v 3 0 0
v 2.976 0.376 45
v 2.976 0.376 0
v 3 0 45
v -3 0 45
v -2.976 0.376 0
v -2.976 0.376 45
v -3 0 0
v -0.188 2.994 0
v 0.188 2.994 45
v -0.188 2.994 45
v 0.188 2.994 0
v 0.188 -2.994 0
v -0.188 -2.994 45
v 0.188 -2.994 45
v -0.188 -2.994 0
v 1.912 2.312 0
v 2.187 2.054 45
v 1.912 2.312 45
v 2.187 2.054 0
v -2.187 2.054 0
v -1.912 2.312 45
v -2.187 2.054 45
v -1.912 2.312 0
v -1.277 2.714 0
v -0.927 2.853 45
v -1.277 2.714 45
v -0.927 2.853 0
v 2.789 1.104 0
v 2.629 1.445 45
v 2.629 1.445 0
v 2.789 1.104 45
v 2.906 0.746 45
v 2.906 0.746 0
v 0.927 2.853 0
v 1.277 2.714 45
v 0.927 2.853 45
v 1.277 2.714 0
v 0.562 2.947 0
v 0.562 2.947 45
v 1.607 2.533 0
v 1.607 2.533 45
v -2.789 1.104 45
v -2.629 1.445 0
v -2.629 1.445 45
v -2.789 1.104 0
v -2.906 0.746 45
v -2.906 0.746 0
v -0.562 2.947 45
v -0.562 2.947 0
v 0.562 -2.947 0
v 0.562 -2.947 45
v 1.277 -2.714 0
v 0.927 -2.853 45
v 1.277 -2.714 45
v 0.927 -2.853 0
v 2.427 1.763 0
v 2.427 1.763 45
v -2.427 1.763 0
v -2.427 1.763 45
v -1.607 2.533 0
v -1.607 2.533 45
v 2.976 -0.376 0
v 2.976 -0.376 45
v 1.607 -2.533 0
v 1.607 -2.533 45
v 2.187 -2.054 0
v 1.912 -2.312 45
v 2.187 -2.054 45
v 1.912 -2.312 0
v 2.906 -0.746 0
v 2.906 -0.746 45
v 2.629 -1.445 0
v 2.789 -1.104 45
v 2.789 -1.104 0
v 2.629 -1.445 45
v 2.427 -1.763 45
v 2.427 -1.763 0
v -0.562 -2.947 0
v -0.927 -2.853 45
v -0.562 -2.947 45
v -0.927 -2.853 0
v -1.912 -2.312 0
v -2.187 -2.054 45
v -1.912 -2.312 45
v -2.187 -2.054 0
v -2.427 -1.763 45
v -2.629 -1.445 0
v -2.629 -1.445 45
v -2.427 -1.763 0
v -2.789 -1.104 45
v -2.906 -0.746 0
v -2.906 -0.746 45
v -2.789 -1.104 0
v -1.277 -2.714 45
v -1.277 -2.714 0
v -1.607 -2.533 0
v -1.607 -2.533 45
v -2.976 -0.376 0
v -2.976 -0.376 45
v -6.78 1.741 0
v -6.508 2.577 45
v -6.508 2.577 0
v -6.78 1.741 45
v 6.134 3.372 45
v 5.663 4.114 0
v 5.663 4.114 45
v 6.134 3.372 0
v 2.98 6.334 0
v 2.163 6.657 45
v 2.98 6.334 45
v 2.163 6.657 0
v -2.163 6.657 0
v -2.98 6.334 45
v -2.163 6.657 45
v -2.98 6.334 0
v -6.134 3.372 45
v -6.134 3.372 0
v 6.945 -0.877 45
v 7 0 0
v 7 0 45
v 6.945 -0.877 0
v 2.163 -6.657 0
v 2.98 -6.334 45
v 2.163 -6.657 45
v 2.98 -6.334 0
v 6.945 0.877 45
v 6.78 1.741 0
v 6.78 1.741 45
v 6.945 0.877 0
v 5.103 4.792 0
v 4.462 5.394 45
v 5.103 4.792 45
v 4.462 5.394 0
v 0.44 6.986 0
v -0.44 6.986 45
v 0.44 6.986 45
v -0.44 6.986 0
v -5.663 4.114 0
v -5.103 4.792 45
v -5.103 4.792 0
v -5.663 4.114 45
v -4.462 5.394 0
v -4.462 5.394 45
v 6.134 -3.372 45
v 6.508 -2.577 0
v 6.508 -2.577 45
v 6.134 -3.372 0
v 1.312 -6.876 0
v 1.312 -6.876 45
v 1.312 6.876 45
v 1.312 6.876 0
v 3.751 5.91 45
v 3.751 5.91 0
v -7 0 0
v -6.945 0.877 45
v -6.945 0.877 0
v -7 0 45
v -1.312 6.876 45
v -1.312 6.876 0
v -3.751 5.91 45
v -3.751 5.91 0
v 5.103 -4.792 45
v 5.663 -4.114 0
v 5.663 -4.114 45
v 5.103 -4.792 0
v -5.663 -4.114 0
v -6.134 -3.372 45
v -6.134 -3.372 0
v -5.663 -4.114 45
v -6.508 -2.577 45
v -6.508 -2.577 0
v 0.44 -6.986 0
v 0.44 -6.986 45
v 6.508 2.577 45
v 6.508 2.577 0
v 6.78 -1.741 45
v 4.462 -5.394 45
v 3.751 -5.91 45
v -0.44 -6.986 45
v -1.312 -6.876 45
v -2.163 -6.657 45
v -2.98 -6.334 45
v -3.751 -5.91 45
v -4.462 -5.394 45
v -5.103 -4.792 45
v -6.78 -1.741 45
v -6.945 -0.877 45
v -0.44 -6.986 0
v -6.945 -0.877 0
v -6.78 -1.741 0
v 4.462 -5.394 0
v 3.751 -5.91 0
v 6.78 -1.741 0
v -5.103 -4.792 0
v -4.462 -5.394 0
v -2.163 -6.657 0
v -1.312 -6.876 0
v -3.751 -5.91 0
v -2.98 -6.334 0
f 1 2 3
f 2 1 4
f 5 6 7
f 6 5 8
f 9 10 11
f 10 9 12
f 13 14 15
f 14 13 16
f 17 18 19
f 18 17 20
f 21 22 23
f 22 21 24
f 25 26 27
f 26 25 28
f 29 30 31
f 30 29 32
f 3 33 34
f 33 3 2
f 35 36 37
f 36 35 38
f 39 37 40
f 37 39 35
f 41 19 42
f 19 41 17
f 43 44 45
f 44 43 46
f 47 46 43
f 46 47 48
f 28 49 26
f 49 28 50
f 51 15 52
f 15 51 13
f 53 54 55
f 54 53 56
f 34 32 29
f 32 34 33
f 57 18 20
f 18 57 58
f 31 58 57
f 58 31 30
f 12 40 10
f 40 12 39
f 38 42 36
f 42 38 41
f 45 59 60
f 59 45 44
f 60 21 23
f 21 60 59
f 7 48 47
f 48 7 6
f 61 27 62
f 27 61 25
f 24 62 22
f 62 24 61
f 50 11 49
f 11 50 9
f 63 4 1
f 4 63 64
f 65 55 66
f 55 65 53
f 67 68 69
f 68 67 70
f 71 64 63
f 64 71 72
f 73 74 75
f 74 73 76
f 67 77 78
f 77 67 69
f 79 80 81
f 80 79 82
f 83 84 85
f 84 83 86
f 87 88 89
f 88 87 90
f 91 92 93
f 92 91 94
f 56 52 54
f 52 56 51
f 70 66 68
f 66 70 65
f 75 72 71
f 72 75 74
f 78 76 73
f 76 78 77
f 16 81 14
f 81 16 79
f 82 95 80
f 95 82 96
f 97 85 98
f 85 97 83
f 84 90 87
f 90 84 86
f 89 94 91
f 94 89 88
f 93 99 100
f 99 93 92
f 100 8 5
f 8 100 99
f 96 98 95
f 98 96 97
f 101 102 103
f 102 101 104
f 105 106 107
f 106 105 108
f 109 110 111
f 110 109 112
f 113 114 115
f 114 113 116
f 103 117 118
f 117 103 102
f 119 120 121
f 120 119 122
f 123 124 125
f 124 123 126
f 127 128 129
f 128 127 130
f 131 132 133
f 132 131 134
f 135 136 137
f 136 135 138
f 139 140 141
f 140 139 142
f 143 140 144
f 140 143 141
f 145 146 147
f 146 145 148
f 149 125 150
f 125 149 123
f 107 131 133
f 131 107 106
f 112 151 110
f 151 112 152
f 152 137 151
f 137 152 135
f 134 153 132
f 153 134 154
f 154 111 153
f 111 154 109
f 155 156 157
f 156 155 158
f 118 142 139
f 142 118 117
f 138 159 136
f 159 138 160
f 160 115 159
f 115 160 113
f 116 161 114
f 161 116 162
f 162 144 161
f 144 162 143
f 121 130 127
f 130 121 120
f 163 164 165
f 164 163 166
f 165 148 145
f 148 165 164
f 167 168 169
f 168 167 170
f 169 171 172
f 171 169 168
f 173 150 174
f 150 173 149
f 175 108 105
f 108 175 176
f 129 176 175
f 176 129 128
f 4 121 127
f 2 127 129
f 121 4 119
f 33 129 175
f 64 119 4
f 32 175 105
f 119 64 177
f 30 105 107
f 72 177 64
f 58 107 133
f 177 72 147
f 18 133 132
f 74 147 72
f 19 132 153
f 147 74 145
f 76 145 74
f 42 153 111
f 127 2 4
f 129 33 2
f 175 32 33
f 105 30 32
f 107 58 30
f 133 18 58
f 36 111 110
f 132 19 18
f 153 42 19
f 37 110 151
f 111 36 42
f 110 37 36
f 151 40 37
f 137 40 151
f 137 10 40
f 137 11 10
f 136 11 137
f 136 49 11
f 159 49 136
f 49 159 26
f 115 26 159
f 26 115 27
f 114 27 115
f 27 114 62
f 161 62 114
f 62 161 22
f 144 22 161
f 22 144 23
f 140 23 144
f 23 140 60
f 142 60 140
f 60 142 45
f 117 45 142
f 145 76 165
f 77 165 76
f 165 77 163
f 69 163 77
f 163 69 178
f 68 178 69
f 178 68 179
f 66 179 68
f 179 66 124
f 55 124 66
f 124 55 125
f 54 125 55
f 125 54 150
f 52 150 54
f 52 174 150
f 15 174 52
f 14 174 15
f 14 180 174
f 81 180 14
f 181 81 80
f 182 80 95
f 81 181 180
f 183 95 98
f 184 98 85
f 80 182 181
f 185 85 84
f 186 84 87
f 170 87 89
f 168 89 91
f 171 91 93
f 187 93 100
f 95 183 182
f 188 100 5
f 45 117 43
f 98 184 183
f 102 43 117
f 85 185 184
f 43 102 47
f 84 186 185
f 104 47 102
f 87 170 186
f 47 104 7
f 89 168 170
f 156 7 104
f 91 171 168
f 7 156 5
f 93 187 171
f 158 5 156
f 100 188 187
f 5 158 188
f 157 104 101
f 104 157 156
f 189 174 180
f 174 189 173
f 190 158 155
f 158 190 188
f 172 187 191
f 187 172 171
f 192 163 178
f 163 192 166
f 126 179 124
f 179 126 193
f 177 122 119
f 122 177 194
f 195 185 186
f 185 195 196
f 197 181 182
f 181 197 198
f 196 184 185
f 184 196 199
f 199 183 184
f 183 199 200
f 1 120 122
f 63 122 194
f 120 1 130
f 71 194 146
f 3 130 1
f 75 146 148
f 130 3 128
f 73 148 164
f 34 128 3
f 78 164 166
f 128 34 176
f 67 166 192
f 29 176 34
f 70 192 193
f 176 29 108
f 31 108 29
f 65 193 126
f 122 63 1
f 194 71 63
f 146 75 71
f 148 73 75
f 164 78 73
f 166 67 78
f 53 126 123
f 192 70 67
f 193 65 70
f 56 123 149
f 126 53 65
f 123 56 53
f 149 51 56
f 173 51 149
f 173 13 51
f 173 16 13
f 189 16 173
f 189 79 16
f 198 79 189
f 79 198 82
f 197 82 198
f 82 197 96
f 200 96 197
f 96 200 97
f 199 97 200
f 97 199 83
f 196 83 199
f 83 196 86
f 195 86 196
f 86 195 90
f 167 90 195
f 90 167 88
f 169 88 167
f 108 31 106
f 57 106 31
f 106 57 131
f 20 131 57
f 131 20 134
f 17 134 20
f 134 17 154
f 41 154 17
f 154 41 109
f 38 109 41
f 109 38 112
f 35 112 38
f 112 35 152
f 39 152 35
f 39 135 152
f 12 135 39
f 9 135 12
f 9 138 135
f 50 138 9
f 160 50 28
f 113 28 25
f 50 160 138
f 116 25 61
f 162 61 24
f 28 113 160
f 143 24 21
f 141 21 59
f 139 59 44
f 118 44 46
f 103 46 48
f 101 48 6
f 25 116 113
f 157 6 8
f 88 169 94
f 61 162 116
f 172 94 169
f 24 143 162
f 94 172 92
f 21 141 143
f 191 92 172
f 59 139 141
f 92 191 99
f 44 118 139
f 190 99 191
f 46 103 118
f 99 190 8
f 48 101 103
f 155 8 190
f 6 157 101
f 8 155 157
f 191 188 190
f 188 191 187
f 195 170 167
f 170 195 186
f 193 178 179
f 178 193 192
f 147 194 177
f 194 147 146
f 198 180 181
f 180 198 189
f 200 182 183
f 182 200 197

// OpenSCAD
$fn = 50;


difference() {
	union() {
		cylinder(h = 45, r = 7.0000000000);
	}
	union() {
		cylinder(h = 45, r = 3.0000000000);
		cylinder(h = 45, r = 1.5000000000);
		cylinder(h = 45, r = 1.5000000000);
		cylinder(h = 45, r = 1.5000000000);
	}
}
